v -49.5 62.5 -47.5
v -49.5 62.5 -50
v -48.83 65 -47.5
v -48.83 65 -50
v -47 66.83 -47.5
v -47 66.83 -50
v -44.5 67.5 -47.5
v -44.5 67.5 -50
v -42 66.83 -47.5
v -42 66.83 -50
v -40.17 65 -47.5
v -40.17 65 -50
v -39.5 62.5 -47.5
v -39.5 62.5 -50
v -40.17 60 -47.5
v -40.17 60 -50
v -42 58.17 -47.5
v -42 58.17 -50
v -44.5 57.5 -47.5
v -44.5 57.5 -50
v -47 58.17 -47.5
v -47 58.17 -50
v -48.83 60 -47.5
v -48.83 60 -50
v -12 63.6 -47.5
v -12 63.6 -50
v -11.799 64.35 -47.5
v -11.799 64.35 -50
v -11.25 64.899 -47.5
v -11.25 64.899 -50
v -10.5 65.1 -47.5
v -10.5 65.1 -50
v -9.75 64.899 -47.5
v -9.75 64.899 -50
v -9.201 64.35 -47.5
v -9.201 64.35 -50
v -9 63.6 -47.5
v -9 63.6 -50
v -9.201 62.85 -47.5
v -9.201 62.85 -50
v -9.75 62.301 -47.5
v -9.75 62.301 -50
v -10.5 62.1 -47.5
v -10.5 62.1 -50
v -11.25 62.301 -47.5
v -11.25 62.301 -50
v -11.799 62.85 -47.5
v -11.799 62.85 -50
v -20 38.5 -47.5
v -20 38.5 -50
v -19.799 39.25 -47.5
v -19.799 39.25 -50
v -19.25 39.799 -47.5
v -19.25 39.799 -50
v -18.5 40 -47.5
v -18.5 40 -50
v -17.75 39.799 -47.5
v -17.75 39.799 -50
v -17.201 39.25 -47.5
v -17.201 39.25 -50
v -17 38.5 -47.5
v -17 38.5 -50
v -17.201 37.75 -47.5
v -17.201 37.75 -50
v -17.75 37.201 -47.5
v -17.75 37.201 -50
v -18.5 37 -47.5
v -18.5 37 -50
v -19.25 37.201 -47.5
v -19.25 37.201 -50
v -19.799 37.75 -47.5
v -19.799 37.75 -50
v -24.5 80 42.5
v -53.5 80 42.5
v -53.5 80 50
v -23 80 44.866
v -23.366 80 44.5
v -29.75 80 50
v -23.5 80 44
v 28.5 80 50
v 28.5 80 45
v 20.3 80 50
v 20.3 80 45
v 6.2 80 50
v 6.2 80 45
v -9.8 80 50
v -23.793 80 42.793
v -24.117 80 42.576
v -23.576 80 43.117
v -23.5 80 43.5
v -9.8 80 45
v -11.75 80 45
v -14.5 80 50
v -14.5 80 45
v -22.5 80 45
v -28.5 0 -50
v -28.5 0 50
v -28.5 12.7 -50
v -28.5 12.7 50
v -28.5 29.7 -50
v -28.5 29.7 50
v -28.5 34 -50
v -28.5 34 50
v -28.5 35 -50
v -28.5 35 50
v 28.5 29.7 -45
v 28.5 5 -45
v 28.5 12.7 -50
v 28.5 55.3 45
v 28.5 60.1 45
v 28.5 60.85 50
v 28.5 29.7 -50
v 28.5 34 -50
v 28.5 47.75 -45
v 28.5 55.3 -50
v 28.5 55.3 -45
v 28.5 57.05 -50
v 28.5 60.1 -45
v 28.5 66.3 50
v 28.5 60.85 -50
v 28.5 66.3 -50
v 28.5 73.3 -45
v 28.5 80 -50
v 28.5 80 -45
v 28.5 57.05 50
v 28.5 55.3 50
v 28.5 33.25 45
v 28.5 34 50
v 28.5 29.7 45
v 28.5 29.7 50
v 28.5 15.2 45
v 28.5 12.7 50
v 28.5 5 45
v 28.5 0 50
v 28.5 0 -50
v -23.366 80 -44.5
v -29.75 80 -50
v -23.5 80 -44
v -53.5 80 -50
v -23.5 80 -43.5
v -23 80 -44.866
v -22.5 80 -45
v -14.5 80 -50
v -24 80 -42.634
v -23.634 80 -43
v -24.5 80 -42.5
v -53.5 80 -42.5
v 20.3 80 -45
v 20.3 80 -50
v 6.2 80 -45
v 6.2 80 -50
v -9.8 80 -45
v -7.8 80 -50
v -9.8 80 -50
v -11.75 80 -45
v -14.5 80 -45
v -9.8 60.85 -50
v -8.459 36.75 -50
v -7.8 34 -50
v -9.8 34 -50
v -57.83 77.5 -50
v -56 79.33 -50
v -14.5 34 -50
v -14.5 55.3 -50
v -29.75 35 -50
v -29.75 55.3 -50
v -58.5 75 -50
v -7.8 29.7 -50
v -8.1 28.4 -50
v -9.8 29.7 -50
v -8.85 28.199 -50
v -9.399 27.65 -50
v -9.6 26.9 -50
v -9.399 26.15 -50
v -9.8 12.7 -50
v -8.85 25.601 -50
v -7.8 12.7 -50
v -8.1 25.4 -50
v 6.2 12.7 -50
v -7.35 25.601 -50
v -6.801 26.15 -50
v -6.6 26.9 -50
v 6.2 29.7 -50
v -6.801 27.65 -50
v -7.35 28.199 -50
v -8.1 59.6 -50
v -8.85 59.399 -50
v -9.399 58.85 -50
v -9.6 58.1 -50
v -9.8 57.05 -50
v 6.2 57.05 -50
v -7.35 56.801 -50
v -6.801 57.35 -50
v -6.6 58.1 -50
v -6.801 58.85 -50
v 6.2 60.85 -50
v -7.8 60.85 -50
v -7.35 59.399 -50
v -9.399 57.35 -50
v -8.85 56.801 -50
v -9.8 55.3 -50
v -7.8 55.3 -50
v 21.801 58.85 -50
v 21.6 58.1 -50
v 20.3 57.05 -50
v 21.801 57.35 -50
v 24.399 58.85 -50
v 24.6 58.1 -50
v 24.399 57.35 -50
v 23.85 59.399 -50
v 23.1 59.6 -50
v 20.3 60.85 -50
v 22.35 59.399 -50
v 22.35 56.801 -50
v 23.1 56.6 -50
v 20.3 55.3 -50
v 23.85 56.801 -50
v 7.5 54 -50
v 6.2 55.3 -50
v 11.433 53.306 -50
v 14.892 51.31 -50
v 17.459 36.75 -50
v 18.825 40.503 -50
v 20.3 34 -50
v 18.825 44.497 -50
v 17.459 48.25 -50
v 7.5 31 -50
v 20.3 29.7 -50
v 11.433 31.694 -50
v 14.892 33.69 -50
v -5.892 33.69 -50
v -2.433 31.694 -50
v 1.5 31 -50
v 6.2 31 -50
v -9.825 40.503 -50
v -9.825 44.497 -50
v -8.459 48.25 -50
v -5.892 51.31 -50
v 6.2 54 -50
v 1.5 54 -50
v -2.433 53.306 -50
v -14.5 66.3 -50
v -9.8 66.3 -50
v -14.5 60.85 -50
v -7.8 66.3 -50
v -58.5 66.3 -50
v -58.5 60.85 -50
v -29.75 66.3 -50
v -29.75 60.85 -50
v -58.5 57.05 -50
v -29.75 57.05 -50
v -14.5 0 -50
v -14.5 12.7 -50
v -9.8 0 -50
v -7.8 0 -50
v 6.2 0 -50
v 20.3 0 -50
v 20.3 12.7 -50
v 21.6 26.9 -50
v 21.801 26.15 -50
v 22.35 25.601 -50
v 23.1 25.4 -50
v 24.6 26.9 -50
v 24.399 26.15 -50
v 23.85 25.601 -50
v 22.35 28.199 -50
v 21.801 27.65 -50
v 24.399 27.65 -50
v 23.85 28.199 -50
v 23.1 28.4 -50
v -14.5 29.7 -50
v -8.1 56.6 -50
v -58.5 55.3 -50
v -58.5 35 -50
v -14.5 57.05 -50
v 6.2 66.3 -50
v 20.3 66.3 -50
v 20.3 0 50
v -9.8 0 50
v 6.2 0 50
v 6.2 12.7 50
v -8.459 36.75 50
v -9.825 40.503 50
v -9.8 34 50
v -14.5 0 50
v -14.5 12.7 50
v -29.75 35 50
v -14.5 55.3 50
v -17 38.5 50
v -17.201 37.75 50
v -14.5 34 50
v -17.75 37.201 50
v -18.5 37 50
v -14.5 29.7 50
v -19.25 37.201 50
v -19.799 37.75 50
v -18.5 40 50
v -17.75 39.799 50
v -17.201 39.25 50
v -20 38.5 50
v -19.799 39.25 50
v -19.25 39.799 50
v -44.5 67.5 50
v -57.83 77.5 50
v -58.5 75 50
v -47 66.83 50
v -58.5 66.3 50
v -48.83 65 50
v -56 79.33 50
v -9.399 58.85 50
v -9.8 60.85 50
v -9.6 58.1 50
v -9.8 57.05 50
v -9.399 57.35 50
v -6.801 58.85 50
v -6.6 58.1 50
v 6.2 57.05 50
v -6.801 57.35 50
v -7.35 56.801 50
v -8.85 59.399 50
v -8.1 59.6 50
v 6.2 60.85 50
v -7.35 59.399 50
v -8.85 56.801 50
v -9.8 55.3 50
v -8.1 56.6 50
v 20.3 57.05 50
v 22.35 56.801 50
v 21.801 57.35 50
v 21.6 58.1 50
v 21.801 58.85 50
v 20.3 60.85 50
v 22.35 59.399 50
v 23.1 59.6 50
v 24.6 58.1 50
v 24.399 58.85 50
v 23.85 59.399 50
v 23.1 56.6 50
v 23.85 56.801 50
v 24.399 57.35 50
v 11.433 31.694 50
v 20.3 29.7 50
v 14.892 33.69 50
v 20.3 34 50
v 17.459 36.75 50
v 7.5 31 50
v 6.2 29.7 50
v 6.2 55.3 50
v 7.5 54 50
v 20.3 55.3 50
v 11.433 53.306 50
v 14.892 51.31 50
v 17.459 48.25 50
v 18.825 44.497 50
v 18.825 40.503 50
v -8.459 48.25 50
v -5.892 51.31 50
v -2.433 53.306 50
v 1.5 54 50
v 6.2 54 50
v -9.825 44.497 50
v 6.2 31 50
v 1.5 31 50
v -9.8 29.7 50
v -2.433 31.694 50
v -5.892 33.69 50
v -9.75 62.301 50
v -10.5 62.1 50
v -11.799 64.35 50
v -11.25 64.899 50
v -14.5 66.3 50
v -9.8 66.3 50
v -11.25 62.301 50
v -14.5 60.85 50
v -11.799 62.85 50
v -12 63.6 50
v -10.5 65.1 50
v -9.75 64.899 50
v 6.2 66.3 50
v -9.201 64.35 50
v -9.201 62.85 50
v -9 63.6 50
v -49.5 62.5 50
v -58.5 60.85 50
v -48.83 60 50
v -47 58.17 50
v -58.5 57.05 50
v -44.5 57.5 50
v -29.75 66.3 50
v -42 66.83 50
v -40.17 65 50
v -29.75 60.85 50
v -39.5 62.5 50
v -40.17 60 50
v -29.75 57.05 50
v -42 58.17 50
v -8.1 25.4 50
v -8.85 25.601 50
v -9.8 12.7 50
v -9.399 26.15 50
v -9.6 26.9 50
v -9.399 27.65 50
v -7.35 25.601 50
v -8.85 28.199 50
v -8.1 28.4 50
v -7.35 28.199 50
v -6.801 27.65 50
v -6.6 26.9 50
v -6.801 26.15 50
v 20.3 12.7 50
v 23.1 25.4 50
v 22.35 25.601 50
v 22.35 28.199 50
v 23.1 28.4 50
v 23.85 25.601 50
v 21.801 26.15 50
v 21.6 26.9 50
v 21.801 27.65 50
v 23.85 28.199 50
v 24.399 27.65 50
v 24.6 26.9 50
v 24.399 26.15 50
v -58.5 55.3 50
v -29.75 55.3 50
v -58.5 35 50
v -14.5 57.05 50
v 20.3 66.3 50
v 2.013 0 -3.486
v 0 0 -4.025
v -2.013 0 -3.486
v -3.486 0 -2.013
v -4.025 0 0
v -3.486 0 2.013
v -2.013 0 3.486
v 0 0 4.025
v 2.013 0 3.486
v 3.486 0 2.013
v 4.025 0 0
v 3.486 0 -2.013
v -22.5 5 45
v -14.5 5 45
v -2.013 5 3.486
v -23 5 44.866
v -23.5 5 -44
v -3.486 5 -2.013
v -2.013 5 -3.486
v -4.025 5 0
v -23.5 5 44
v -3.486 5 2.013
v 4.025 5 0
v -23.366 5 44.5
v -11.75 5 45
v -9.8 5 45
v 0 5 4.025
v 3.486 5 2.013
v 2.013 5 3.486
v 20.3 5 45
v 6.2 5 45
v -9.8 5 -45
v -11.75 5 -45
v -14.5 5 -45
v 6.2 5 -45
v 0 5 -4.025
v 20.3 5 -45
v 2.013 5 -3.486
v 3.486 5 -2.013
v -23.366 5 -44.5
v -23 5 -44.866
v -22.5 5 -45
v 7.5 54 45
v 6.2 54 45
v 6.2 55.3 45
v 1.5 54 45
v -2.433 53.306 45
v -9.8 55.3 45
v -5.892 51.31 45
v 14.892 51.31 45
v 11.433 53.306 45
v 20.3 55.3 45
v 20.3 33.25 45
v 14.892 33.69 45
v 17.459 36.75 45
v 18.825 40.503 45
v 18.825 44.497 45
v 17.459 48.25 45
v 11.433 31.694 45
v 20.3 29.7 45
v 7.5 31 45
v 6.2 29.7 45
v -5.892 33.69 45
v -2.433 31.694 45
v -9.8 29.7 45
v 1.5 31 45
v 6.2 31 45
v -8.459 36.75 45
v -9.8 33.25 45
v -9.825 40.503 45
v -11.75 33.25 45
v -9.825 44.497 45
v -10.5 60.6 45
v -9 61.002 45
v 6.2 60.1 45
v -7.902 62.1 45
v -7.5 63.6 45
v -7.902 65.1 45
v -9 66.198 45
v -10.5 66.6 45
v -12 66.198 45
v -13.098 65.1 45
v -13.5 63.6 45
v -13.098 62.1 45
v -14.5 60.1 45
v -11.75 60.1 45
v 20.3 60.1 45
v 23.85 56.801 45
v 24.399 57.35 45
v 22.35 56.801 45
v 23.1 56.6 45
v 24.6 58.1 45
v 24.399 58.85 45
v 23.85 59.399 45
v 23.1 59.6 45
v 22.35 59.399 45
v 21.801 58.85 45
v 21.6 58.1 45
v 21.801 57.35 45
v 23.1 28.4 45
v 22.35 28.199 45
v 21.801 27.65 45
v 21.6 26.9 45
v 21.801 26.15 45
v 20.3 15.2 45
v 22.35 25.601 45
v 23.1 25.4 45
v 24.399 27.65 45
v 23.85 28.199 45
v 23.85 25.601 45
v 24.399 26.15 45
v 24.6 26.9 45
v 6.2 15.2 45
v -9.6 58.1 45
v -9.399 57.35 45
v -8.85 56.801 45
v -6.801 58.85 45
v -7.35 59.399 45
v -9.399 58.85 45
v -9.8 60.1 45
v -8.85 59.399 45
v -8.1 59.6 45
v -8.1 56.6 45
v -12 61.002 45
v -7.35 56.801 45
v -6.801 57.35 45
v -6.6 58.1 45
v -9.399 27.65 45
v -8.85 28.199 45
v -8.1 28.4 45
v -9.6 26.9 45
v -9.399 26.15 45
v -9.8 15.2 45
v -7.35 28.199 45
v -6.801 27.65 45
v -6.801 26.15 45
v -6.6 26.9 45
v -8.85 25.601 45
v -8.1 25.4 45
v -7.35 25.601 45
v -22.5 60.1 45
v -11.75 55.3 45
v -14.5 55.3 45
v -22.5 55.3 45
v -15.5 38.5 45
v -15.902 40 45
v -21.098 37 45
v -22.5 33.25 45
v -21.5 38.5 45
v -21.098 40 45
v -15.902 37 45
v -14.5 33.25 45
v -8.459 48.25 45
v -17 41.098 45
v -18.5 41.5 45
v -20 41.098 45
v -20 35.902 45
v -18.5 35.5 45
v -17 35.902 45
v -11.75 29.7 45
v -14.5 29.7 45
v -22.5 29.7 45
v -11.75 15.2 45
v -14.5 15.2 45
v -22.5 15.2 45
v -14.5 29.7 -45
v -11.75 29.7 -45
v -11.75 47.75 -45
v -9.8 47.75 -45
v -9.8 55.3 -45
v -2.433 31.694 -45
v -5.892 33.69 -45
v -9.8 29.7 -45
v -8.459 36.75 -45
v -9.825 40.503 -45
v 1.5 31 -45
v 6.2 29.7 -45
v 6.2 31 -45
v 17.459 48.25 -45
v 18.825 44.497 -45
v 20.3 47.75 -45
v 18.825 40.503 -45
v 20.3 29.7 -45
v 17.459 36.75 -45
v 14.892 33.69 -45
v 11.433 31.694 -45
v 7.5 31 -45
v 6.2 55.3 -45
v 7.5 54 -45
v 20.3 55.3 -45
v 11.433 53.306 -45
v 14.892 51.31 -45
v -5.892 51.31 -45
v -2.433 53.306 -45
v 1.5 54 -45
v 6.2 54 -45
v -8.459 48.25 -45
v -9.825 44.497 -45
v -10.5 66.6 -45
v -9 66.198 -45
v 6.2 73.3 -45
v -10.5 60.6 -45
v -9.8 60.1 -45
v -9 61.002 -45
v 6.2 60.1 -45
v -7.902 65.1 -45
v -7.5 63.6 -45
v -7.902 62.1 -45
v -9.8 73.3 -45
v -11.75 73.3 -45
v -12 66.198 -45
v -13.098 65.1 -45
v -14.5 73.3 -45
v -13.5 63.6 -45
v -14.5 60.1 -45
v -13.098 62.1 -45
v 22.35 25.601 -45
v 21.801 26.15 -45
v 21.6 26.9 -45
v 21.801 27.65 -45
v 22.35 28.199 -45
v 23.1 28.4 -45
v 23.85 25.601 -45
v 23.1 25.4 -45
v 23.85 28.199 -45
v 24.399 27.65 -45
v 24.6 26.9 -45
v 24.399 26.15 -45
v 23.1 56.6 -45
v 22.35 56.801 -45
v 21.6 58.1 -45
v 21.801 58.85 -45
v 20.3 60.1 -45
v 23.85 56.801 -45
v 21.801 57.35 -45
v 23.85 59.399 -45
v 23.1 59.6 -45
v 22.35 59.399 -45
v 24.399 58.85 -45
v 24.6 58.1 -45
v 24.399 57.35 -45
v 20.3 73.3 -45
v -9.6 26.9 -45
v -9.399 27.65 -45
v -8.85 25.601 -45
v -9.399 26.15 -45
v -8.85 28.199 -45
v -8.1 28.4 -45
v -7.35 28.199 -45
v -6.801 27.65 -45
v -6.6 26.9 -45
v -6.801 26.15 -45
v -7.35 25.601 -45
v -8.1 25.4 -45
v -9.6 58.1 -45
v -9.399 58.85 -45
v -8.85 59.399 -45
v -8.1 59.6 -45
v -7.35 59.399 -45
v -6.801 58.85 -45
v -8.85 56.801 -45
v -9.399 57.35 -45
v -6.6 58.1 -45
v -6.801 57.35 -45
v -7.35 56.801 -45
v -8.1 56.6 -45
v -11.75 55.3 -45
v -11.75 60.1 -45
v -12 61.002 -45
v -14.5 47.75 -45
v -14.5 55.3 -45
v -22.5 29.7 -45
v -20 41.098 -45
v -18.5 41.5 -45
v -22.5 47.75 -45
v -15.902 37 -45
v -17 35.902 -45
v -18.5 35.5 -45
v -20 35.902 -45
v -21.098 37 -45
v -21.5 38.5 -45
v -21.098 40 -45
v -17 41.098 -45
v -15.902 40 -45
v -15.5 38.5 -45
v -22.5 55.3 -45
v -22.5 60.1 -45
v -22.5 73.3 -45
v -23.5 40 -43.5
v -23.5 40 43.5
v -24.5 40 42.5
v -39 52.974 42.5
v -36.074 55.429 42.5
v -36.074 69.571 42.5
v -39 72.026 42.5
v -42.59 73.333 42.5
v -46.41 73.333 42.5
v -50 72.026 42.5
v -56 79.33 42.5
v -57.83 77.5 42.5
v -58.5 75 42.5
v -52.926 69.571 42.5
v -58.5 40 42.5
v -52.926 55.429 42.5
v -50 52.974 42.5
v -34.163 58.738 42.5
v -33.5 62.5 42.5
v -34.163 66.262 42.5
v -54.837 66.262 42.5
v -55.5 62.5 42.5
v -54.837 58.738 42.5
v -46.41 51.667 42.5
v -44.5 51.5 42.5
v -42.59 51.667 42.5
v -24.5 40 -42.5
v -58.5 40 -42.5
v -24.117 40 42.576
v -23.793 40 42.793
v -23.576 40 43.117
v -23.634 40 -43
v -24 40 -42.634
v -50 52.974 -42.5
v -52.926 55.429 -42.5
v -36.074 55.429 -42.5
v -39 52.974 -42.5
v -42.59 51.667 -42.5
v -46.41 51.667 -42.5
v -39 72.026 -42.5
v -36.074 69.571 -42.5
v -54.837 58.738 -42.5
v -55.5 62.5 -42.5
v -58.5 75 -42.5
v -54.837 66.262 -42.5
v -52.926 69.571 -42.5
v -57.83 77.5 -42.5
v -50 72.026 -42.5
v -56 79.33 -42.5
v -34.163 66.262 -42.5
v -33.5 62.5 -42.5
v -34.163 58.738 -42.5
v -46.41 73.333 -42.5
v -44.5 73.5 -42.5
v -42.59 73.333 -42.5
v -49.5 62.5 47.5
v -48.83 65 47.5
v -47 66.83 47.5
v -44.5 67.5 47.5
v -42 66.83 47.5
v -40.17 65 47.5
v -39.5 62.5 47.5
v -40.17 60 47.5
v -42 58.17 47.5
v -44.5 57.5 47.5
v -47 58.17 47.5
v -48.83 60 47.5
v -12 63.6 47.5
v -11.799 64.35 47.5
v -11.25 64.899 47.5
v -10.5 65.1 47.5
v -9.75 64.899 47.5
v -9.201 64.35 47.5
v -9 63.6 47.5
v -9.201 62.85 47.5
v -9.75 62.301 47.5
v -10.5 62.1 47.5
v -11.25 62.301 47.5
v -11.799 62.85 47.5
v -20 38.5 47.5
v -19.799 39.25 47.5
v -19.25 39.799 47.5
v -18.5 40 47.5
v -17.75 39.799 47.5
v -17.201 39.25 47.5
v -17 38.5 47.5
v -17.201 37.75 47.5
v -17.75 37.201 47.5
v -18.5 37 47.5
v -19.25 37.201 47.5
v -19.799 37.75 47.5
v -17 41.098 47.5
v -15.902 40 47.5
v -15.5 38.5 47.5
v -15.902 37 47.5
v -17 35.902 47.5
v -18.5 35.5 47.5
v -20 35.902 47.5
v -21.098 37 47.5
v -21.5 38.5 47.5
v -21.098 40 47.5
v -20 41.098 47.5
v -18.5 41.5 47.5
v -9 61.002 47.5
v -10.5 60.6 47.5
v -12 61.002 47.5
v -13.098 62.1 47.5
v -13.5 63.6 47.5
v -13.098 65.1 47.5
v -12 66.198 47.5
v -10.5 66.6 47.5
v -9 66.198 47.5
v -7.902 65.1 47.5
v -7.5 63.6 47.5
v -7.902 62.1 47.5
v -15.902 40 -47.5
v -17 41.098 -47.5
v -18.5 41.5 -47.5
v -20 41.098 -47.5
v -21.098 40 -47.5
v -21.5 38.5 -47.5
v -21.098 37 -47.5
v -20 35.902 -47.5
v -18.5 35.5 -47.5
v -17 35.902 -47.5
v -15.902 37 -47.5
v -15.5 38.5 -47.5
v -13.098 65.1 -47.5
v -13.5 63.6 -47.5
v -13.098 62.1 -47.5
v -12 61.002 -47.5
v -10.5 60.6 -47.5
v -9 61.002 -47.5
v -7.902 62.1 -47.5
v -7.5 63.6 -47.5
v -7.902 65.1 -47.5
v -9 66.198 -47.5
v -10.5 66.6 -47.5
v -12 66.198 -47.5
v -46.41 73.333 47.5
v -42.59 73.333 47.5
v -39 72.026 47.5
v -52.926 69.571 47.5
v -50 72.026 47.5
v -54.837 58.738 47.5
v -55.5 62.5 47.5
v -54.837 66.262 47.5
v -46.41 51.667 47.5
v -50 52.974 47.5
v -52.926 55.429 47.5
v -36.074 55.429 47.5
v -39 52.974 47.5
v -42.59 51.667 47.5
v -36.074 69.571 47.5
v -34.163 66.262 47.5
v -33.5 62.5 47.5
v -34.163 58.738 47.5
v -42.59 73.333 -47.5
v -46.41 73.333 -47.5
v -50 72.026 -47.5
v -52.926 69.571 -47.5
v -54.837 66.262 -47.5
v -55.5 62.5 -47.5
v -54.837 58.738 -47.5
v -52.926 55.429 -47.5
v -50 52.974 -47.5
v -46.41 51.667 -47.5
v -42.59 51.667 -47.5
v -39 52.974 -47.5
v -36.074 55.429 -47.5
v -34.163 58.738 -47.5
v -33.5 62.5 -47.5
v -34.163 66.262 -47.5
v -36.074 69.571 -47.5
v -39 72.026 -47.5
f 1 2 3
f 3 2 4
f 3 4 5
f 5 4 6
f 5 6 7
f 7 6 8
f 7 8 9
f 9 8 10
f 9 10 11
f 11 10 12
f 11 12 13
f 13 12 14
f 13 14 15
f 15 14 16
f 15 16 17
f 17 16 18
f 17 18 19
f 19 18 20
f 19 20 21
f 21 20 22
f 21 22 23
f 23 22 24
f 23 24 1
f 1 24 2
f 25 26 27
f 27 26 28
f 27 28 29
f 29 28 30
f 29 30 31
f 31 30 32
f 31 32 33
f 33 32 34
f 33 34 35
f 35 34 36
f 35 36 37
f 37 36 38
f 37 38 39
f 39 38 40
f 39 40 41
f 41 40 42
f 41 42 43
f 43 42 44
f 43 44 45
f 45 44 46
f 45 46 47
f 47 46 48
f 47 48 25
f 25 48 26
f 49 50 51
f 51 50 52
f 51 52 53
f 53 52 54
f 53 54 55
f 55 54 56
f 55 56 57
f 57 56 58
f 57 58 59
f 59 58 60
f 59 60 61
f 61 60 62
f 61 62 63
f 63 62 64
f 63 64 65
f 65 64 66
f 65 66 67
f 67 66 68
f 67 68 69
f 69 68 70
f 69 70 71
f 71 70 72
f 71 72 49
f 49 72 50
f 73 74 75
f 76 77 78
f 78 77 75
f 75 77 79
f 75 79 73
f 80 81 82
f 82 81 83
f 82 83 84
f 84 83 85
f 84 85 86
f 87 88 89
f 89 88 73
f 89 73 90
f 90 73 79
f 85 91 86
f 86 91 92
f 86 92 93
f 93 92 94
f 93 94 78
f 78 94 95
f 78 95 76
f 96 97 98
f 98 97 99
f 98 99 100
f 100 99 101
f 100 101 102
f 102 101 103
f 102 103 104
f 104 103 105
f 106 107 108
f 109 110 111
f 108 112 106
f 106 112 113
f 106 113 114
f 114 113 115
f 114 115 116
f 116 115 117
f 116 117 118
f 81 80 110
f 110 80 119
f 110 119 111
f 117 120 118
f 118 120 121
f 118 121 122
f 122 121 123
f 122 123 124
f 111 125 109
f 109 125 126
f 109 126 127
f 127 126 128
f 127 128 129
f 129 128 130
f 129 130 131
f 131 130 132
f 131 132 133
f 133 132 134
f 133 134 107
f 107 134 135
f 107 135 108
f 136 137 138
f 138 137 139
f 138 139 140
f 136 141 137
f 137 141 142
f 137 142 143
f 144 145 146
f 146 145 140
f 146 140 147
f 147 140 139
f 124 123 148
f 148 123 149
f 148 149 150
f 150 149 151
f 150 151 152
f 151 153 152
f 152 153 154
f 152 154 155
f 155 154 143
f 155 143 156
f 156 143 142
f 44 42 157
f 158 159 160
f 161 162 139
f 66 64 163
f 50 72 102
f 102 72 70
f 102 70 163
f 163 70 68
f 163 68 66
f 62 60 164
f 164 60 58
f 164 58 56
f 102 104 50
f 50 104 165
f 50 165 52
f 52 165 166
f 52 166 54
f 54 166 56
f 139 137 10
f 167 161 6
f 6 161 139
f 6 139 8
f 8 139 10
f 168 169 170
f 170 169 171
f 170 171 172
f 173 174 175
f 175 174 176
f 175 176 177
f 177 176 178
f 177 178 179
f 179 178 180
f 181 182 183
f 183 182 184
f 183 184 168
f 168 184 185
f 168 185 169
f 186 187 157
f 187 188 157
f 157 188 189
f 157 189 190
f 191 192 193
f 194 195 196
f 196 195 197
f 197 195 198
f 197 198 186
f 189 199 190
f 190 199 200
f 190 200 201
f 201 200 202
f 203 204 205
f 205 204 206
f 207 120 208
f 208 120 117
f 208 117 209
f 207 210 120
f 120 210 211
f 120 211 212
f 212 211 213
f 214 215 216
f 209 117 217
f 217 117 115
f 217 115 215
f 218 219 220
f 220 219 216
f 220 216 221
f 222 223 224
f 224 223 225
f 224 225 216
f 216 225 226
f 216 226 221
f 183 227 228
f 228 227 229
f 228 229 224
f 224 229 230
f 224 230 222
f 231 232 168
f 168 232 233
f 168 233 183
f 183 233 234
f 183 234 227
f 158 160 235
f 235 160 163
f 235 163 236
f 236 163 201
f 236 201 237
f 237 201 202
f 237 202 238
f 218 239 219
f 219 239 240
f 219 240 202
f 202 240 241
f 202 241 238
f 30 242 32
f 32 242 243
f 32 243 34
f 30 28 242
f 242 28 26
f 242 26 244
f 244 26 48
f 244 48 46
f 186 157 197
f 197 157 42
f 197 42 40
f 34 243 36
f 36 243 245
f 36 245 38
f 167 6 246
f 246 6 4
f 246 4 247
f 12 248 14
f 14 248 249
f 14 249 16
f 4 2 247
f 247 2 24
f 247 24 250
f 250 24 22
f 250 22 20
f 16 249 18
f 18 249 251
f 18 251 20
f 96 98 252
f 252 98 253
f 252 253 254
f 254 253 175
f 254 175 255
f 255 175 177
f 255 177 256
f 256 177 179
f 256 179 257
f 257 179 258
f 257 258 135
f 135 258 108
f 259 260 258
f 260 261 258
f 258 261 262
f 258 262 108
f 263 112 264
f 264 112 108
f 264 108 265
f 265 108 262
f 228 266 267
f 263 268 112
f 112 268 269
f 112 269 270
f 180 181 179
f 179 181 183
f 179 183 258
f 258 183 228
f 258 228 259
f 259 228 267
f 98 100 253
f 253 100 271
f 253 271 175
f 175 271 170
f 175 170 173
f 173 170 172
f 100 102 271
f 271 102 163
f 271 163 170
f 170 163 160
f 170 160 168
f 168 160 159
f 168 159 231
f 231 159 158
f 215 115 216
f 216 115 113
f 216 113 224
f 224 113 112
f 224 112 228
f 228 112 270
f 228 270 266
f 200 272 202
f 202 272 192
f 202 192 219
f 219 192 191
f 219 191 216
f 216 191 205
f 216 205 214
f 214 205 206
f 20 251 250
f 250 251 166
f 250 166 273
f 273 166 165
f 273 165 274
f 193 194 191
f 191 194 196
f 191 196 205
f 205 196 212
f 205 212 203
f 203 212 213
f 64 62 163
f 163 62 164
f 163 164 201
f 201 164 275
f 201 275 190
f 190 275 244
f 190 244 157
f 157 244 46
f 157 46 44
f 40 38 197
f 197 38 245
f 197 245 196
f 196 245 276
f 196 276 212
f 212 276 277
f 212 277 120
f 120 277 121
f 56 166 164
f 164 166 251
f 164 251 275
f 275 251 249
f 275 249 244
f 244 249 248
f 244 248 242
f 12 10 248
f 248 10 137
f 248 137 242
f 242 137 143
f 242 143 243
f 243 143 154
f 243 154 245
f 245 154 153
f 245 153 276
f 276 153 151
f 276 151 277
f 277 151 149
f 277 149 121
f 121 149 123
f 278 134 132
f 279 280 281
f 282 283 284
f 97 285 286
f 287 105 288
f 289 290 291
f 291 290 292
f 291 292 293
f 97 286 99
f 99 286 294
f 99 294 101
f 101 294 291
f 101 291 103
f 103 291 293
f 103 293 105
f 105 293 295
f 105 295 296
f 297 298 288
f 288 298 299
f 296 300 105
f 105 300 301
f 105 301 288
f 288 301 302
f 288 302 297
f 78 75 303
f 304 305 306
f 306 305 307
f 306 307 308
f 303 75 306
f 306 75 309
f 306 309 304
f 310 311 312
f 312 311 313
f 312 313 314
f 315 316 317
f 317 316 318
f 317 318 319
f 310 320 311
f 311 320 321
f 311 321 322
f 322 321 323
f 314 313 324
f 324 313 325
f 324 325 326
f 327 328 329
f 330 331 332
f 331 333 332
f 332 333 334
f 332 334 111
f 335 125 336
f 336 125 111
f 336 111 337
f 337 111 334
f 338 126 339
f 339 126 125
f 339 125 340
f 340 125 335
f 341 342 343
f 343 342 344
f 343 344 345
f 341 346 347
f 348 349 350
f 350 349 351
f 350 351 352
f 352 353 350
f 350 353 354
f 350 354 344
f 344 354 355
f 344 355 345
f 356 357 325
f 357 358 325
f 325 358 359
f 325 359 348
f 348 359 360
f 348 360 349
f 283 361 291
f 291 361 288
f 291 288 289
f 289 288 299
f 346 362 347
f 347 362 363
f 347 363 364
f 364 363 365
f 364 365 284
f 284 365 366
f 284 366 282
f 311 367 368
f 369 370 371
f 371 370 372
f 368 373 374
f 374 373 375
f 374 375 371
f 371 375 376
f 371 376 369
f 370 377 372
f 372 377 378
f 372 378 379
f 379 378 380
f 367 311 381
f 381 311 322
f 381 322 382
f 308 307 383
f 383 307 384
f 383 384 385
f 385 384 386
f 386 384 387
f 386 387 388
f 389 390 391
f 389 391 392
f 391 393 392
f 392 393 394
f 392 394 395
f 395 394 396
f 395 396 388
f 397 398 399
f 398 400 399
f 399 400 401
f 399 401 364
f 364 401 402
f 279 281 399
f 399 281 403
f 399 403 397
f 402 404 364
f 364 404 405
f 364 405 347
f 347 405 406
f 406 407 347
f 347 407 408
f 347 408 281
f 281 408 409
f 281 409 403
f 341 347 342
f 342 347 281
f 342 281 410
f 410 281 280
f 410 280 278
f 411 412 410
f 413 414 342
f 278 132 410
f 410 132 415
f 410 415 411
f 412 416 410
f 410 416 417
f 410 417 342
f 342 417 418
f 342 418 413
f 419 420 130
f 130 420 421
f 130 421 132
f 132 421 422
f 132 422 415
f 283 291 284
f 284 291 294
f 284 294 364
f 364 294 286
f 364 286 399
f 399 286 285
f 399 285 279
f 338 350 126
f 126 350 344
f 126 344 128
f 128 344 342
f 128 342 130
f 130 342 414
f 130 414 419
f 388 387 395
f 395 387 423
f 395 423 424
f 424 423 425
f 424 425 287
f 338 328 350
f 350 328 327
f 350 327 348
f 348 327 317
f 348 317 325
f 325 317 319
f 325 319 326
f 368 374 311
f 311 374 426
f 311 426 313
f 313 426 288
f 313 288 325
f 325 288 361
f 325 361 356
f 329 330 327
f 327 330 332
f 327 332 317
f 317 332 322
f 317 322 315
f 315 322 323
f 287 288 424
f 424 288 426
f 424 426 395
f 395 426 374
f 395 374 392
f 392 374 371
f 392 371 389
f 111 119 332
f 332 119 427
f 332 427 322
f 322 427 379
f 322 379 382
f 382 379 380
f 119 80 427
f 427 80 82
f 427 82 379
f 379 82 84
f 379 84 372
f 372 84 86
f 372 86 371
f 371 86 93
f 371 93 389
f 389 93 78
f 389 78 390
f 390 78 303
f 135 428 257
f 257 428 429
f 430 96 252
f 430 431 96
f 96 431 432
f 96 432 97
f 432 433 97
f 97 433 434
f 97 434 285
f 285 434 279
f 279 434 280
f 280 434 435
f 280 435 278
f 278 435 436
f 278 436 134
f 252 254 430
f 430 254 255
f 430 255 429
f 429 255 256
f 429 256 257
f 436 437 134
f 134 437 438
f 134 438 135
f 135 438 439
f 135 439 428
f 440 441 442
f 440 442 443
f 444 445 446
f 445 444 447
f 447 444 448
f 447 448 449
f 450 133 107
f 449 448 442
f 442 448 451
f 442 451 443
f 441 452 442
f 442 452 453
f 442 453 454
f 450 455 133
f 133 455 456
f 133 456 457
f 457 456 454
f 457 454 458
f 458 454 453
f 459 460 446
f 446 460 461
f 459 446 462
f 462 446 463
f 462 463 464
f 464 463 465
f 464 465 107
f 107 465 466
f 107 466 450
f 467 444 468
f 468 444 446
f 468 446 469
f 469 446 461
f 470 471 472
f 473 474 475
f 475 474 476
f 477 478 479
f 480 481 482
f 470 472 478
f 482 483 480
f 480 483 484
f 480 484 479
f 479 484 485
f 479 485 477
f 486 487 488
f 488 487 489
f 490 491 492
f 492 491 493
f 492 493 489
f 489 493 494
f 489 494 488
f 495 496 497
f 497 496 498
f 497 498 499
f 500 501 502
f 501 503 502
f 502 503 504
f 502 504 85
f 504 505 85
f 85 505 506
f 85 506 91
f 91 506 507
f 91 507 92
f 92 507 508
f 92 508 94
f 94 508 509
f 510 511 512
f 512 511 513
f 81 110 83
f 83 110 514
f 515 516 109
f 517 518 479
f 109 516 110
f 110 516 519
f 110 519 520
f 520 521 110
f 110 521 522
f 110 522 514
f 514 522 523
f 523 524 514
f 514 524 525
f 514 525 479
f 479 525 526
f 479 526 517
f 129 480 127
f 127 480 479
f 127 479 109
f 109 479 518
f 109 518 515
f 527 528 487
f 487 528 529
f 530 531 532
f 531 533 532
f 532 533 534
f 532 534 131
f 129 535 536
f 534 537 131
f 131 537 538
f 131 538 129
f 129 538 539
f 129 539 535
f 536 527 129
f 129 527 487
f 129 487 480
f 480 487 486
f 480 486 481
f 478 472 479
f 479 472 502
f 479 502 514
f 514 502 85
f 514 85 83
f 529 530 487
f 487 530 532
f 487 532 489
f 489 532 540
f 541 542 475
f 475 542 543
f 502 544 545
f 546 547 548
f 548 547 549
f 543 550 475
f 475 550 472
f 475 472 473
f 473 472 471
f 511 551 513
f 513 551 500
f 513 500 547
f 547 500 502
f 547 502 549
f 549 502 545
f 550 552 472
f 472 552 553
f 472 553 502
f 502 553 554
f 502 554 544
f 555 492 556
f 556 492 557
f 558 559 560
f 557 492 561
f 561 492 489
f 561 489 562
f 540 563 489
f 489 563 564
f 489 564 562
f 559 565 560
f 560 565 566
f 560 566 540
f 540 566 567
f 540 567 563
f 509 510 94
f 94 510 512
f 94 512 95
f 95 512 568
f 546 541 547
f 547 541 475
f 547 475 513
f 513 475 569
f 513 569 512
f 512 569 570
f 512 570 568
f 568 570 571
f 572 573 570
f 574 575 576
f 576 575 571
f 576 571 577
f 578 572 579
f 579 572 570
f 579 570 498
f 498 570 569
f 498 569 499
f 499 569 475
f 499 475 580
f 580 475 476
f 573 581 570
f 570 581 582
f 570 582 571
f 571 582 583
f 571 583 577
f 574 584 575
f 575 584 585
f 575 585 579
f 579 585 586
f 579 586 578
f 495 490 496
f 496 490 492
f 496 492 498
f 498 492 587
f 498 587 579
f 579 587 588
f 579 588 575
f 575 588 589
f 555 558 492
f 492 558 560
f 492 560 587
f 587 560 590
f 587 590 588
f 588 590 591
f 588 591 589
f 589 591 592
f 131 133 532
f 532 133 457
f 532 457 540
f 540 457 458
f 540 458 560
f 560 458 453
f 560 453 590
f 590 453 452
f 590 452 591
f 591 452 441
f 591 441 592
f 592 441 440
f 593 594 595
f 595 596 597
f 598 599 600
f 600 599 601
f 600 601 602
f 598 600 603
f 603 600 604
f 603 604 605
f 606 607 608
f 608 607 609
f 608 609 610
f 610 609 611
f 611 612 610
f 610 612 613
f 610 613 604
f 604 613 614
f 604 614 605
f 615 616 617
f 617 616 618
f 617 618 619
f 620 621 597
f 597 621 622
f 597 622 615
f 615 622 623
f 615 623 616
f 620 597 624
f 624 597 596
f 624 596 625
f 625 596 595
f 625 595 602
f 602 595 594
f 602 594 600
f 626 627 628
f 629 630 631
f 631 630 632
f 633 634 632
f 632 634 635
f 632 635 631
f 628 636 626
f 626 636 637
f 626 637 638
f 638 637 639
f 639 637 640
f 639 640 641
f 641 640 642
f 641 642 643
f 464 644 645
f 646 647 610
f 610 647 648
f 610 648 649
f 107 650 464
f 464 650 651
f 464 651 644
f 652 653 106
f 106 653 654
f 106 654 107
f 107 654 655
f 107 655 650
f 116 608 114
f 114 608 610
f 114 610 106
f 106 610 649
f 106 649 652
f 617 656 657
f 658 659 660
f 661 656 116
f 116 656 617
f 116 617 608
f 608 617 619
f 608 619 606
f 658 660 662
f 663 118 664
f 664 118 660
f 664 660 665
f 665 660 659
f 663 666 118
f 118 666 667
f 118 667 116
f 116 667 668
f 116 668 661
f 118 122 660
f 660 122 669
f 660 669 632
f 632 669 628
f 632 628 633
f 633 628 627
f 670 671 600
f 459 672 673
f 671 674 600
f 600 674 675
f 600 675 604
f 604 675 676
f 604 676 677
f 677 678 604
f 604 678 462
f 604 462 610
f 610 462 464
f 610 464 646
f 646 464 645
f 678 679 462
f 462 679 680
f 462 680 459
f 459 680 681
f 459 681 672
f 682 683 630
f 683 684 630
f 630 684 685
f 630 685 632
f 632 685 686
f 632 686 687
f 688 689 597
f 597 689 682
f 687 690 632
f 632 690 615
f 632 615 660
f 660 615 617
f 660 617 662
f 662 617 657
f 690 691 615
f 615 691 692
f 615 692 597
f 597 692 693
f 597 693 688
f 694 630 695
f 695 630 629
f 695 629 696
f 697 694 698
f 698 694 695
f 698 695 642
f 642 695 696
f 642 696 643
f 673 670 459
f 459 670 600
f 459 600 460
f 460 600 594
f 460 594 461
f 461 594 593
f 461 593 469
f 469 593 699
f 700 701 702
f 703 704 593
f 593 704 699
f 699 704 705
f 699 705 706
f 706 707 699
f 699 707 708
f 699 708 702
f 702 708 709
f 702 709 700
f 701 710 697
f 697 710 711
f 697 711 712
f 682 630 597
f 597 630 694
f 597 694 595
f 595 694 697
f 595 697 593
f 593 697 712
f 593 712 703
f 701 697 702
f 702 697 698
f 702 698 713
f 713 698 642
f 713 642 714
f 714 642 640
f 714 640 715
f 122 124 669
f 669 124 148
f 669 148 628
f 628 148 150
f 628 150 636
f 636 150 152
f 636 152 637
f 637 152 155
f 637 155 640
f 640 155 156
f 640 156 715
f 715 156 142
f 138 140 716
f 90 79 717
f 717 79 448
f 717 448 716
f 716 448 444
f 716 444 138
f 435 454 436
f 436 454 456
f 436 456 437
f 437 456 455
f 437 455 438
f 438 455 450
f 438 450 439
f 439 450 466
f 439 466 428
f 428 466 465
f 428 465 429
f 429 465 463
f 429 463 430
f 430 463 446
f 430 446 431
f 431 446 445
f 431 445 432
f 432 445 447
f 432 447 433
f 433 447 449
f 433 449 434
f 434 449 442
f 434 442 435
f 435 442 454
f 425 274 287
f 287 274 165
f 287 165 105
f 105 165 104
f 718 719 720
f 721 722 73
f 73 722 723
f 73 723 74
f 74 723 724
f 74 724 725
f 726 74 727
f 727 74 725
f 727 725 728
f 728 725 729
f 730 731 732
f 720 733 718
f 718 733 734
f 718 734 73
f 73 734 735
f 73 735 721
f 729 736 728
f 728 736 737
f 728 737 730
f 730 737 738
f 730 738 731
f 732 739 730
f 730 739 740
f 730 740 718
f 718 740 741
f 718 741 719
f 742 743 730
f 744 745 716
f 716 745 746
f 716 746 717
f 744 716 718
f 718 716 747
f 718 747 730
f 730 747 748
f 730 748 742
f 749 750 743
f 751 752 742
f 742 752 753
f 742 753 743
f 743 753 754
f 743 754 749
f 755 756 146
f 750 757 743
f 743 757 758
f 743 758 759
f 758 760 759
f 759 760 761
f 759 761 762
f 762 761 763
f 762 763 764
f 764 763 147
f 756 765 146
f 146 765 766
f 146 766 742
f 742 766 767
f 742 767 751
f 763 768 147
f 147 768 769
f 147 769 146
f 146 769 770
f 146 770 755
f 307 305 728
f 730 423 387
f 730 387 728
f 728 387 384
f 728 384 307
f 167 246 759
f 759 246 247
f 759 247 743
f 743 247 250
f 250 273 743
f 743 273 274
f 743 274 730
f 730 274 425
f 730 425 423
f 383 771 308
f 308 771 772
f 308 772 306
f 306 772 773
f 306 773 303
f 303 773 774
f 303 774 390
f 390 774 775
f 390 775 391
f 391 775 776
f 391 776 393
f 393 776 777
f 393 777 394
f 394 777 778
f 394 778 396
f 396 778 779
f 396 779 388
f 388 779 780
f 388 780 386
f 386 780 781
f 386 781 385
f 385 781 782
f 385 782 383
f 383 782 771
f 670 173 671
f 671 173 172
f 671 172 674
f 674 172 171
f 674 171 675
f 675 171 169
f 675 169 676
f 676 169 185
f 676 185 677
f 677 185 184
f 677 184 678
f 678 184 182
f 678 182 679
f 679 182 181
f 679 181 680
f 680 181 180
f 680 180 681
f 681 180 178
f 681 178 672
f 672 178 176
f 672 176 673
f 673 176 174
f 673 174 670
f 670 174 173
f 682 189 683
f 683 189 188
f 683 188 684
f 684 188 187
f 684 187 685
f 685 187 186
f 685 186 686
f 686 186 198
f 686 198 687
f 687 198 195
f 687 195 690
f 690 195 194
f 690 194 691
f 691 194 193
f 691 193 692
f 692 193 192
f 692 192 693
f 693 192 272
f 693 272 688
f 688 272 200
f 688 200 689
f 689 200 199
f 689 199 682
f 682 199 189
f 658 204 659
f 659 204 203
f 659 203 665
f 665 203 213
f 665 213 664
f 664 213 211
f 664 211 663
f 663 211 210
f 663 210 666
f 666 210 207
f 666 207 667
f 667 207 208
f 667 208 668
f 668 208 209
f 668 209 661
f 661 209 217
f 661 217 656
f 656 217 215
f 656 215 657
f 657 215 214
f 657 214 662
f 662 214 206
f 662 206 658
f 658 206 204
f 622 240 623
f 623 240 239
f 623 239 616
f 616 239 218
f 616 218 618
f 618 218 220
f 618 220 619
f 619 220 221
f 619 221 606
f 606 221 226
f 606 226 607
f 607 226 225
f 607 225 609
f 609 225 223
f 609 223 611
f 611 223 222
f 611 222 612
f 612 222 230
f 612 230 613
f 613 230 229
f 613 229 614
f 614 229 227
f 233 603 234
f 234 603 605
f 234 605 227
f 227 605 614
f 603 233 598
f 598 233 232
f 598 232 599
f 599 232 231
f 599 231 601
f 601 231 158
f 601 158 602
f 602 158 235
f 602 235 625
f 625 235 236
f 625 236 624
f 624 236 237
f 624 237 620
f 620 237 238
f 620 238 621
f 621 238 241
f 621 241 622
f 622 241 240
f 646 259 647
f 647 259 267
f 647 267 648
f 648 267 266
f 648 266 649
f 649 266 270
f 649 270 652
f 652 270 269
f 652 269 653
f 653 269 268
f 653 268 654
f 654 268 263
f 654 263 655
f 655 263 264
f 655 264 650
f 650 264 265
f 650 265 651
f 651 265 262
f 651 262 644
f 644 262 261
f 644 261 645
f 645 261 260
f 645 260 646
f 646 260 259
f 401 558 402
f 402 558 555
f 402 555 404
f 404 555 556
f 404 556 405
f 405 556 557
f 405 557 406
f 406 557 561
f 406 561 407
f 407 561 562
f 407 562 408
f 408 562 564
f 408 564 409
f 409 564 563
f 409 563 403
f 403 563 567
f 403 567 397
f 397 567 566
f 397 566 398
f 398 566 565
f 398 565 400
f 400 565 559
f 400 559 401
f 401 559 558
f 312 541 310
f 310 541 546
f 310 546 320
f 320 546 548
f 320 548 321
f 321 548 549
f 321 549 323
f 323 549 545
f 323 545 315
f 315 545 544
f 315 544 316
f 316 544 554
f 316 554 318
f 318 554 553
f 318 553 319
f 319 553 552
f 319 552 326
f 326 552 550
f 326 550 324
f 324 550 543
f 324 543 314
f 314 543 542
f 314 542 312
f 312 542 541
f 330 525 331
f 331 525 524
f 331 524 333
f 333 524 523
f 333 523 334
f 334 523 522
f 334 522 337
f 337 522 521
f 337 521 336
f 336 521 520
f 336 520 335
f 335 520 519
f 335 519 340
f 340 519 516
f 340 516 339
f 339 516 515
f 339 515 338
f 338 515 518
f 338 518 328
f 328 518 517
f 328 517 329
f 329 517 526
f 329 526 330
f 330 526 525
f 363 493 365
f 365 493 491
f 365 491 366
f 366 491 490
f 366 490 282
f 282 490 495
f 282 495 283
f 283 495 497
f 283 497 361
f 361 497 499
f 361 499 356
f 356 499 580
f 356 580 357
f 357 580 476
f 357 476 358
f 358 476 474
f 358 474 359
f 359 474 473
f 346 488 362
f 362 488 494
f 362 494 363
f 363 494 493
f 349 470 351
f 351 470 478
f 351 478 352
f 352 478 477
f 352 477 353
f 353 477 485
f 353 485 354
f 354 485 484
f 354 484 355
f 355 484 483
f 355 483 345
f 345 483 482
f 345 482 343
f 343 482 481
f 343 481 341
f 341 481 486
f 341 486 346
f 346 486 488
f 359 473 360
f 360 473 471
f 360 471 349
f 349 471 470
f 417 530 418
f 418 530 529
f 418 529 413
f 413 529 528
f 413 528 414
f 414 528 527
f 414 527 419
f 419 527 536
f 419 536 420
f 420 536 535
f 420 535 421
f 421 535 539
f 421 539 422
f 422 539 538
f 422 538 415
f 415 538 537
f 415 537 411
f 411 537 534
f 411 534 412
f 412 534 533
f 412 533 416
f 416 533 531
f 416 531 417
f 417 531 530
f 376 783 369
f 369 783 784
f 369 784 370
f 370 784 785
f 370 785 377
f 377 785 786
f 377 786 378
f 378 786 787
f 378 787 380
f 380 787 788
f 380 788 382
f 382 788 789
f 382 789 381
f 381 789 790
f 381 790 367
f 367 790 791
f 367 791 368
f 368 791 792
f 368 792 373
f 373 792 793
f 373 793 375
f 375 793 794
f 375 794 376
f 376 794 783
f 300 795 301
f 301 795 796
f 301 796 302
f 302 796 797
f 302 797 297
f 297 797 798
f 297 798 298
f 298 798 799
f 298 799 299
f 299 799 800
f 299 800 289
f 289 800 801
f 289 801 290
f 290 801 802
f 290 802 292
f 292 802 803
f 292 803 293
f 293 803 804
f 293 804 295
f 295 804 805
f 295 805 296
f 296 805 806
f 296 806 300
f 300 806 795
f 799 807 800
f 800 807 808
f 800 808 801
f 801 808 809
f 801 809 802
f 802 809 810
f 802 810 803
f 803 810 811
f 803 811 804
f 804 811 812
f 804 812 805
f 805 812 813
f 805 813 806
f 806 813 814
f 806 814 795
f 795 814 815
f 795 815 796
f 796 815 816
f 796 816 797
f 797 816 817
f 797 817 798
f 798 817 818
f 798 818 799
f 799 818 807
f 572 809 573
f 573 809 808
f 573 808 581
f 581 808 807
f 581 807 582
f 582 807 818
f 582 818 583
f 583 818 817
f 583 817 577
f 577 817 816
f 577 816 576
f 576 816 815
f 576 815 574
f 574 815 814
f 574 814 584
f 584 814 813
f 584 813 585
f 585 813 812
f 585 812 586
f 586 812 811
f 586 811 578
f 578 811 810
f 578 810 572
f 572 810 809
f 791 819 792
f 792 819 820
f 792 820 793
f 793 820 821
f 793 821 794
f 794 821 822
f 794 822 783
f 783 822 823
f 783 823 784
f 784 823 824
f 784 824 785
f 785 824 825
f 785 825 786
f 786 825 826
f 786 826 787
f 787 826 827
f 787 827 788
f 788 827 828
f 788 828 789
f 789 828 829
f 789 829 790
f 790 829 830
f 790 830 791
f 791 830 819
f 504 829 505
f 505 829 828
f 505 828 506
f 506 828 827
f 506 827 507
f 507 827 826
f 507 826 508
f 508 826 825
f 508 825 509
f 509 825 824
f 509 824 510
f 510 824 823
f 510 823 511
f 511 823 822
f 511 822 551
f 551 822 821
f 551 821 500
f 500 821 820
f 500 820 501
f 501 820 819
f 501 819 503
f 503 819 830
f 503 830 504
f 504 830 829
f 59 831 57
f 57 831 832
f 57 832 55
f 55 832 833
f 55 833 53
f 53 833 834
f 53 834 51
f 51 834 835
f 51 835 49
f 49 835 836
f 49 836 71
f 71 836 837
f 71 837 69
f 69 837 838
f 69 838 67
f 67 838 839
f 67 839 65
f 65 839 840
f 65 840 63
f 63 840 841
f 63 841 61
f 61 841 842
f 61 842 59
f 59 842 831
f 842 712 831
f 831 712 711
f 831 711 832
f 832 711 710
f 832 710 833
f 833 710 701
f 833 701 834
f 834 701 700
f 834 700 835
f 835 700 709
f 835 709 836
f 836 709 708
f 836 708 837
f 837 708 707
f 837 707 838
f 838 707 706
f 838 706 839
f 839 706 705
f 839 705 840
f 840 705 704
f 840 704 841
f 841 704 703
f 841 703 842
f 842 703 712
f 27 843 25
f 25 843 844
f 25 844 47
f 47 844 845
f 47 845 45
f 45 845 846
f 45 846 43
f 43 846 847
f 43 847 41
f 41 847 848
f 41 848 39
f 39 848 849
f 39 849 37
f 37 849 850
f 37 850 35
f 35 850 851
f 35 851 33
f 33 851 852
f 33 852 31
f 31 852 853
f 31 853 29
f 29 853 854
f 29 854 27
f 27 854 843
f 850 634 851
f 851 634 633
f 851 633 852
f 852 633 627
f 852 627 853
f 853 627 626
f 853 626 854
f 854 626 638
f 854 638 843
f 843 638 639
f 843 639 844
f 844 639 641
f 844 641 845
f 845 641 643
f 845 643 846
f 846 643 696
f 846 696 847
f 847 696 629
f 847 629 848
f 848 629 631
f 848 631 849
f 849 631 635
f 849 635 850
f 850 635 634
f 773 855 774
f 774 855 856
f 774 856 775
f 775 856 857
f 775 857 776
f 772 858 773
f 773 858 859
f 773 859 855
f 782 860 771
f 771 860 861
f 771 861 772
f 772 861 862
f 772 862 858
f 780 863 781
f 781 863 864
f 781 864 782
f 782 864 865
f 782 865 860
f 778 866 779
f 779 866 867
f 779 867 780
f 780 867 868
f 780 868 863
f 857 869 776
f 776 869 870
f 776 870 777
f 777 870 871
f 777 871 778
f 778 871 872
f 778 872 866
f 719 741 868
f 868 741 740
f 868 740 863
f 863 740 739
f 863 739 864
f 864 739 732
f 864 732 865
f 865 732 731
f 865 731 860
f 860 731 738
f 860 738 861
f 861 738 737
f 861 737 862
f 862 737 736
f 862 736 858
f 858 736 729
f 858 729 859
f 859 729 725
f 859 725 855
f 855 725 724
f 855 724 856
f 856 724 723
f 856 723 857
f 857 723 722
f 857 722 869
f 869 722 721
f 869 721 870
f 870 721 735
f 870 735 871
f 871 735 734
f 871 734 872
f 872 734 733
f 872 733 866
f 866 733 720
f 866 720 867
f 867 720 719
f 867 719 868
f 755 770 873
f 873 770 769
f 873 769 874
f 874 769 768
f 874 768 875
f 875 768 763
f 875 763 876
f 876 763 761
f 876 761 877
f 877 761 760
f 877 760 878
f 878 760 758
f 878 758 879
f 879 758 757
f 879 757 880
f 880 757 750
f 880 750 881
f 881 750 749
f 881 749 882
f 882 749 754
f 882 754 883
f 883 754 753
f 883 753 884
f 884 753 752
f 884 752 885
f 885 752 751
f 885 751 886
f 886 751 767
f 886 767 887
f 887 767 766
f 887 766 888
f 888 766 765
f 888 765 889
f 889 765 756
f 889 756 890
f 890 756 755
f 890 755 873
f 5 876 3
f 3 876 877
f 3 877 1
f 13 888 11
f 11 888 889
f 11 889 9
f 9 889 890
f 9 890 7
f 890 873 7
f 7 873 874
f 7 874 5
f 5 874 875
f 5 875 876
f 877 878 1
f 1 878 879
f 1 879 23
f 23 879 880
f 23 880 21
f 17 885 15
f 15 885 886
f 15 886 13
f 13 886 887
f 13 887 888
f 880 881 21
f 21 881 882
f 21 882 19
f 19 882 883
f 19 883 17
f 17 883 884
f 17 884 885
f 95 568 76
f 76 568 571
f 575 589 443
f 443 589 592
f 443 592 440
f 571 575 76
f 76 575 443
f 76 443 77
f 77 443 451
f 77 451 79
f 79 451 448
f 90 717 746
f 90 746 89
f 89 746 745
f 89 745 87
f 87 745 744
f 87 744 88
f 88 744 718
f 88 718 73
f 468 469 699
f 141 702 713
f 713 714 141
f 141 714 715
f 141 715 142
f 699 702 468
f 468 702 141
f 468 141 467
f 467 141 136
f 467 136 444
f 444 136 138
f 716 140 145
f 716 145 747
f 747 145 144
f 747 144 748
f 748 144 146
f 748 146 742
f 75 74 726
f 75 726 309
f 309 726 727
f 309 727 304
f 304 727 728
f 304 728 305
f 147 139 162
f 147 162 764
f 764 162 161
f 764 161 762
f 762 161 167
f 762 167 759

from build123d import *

# Parameters (mm, degrees)
SKETCH1_W           = 57
SKETCH1_H           = 100
BOSS_EXTRUDE1_DEPTH = 80
SKETCH3_W           = 75
SKETCH3_H           = 90
CUT_EXTRUDE1_DEPTH  = 52
SKETCH4_R           = 4.025
CUT_EXTRUDE2_DEPTH  = 114.213294272
BOSS_EXTRUDE2_DEPTH = 30
CUT_EXTRUDE5_REACH  = 112.223
SKETCH8_W           = 85
SKETCH8_H           = 40
SKETCH5_R           = 5
SKETCH5_R_2         = 1.5
CUT_EXTRUDE3_DEPTH  = 141.791512528
SKETCH9_R           = 11
SKETCH9_R_2         = 3
CUT_EXTRUDE6_DEPTH  = 47.5
FILLET1_R           = 1
FILLET2_R           = 5


with BuildPart() as part:
    # Sketch1 → Boss-Extrude1 (new body)
    with BuildSketch(Plane(origin=(0, 0, 0), x_dir=(1, 0, 0), z_dir=(0, 1, 0))):
        Rectangle(SKETCH1_W, SKETCH1_H)
    extrude(amount=BOSS_EXTRUDE1_DEPTH)

    # Sketch3 → Cut-Extrude1 (cut)
    with BuildSketch(Plane(origin=(28.5, 40, 0), x_dir=(0, 1, 0), z_dir=(-1, 0, 0))):
        with Locations((2.5, 0)):
            Rectangle(SKETCH3_W, SKETCH3_H)
    extrude(amount=CUT_EXTRUDE1_DEPTH, mode=Mode.SUBTRACT)

    # Sketch4 → Cut-Extrude2 (cut, through all)
    with BuildSketch(Plane(origin=(-40, 5, 0), x_dir=(-1, 0, 0), z_dir=(0, -1, 0))):
        with Locations(Location((-40, 0, 0), (0, 0, 90))):
            Circle(SKETCH4_R)
    extrude(amount=CUT_EXTRUDE2_DEPTH, mode=Mode.SUBTRACT)

    # Sketch7 → Boss-Extrude2 (add)
    with BuildSketch(Plane.ZY.offset(28.5)):
        Polygon((-50, 80), (-42.5, 80), (-42.5, 40), (42.5, 40), (42.5, 80), (50, 80), (50, 35), (-50, 35), align=None)
    extrude(amount=BOSS_EXTRUDE2_DEPTH)

    # Sketch8 → Cut-Extrude5 (cut, up to next)
    with BuildSketch(Plane.ZY.offset(28.5), mode=Mode.PRIVATE) as cut_extrude5_sk1:
        with Locations((0, 60)):
            Rectangle(SKETCH8_W, SKETCH8_H)
    cut_extrude5_tool1 = extrude(cut_extrude5_sk1.sketch, amount=-CUT_EXTRUDE5_REACH, mode=Mode.PRIVATE) & part.part
    add(cut_extrude5_tool1.solids().sort_by_distance((-28.5, 60, 0))[0], mode=Mode.SUBTRACT)

    # Sketch5 → Cut-Extrude3 (cut, through all)
    with BuildSketch(Plane(origin=(0, 0, -50), x_dir=(-1, 0, 0), z_dir=(0, 0, -1))):
        with Locations((44.5, 62.5)):
            Circle(SKETCH5_R)
        with Locations((-23.1, 58.1)):
            Circle(SKETCH5_R_2)
        with Locations((8.1, 58.1)):
            Circle(SKETCH5_R_2)
        with Locations((8.1, 26.9)):
            Circle(SKETCH5_R_2)
        with Locations((-23.1, 26.9)):
            Circle(SKETCH5_R_2)
        with Locations((10.5, 63.6)):
            Circle(SKETCH5_R_2)
        with Locations((18.5, 38.5)):
            Circle(SKETCH5_R_2)
        with BuildLine():
            Line((-1.5, 31), (-7.5, 31))
            ThreePointArc((-7.5, 31), (-19, 42.5), (-7.5, 54))
            Line((-7.5, 54), (-1.5, 54))
            ThreePointArc((-1.5, 54), (10, 42.5), (-1.5, 31))
        make_face()
    extrude(amount=-CUT_EXTRUDE3_DEPTH, mode=Mode.SUBTRACT)

    # Sketch9 → Cut-Extrude6 (cut, symmetric)
    with BuildSketch(Plane.XY):
        with Locations((-44.5, 62.5)):
            Circle(SKETCH9_R)
        with Locations((-10.5, 63.6)):
            Circle(SKETCH9_R_2)
        with Locations((-18.5, 38.5)):
            Circle(SKETCH9_R_2)
    extrude(amount=CUT_EXTRUDE6_DEPTH, both=True, mode=Mode.SUBTRACT)

    # Fillet1
    fillet1_edges = [part.edges().sort_by_distance(p)[0] for p in [
        (-23.5, 42.5, 45),
        (-23.5, 42.5, -45),
        (-23.5, 60, 42.5),
        (-23.5, 60, -42.5),
    ]]
    fillet(fillet1_edges, radius=FILLET1_R)

    # Fillet2
    fillet2_edges = [part.edges().sort_by_distance(p)[0] for p in [
        (-58.5, 80, 46.25),
        (-58.5, 80, -46.25),
    ]]
    fillet(fillet2_edges, radius=FILLET2_R)


solid = part.part
